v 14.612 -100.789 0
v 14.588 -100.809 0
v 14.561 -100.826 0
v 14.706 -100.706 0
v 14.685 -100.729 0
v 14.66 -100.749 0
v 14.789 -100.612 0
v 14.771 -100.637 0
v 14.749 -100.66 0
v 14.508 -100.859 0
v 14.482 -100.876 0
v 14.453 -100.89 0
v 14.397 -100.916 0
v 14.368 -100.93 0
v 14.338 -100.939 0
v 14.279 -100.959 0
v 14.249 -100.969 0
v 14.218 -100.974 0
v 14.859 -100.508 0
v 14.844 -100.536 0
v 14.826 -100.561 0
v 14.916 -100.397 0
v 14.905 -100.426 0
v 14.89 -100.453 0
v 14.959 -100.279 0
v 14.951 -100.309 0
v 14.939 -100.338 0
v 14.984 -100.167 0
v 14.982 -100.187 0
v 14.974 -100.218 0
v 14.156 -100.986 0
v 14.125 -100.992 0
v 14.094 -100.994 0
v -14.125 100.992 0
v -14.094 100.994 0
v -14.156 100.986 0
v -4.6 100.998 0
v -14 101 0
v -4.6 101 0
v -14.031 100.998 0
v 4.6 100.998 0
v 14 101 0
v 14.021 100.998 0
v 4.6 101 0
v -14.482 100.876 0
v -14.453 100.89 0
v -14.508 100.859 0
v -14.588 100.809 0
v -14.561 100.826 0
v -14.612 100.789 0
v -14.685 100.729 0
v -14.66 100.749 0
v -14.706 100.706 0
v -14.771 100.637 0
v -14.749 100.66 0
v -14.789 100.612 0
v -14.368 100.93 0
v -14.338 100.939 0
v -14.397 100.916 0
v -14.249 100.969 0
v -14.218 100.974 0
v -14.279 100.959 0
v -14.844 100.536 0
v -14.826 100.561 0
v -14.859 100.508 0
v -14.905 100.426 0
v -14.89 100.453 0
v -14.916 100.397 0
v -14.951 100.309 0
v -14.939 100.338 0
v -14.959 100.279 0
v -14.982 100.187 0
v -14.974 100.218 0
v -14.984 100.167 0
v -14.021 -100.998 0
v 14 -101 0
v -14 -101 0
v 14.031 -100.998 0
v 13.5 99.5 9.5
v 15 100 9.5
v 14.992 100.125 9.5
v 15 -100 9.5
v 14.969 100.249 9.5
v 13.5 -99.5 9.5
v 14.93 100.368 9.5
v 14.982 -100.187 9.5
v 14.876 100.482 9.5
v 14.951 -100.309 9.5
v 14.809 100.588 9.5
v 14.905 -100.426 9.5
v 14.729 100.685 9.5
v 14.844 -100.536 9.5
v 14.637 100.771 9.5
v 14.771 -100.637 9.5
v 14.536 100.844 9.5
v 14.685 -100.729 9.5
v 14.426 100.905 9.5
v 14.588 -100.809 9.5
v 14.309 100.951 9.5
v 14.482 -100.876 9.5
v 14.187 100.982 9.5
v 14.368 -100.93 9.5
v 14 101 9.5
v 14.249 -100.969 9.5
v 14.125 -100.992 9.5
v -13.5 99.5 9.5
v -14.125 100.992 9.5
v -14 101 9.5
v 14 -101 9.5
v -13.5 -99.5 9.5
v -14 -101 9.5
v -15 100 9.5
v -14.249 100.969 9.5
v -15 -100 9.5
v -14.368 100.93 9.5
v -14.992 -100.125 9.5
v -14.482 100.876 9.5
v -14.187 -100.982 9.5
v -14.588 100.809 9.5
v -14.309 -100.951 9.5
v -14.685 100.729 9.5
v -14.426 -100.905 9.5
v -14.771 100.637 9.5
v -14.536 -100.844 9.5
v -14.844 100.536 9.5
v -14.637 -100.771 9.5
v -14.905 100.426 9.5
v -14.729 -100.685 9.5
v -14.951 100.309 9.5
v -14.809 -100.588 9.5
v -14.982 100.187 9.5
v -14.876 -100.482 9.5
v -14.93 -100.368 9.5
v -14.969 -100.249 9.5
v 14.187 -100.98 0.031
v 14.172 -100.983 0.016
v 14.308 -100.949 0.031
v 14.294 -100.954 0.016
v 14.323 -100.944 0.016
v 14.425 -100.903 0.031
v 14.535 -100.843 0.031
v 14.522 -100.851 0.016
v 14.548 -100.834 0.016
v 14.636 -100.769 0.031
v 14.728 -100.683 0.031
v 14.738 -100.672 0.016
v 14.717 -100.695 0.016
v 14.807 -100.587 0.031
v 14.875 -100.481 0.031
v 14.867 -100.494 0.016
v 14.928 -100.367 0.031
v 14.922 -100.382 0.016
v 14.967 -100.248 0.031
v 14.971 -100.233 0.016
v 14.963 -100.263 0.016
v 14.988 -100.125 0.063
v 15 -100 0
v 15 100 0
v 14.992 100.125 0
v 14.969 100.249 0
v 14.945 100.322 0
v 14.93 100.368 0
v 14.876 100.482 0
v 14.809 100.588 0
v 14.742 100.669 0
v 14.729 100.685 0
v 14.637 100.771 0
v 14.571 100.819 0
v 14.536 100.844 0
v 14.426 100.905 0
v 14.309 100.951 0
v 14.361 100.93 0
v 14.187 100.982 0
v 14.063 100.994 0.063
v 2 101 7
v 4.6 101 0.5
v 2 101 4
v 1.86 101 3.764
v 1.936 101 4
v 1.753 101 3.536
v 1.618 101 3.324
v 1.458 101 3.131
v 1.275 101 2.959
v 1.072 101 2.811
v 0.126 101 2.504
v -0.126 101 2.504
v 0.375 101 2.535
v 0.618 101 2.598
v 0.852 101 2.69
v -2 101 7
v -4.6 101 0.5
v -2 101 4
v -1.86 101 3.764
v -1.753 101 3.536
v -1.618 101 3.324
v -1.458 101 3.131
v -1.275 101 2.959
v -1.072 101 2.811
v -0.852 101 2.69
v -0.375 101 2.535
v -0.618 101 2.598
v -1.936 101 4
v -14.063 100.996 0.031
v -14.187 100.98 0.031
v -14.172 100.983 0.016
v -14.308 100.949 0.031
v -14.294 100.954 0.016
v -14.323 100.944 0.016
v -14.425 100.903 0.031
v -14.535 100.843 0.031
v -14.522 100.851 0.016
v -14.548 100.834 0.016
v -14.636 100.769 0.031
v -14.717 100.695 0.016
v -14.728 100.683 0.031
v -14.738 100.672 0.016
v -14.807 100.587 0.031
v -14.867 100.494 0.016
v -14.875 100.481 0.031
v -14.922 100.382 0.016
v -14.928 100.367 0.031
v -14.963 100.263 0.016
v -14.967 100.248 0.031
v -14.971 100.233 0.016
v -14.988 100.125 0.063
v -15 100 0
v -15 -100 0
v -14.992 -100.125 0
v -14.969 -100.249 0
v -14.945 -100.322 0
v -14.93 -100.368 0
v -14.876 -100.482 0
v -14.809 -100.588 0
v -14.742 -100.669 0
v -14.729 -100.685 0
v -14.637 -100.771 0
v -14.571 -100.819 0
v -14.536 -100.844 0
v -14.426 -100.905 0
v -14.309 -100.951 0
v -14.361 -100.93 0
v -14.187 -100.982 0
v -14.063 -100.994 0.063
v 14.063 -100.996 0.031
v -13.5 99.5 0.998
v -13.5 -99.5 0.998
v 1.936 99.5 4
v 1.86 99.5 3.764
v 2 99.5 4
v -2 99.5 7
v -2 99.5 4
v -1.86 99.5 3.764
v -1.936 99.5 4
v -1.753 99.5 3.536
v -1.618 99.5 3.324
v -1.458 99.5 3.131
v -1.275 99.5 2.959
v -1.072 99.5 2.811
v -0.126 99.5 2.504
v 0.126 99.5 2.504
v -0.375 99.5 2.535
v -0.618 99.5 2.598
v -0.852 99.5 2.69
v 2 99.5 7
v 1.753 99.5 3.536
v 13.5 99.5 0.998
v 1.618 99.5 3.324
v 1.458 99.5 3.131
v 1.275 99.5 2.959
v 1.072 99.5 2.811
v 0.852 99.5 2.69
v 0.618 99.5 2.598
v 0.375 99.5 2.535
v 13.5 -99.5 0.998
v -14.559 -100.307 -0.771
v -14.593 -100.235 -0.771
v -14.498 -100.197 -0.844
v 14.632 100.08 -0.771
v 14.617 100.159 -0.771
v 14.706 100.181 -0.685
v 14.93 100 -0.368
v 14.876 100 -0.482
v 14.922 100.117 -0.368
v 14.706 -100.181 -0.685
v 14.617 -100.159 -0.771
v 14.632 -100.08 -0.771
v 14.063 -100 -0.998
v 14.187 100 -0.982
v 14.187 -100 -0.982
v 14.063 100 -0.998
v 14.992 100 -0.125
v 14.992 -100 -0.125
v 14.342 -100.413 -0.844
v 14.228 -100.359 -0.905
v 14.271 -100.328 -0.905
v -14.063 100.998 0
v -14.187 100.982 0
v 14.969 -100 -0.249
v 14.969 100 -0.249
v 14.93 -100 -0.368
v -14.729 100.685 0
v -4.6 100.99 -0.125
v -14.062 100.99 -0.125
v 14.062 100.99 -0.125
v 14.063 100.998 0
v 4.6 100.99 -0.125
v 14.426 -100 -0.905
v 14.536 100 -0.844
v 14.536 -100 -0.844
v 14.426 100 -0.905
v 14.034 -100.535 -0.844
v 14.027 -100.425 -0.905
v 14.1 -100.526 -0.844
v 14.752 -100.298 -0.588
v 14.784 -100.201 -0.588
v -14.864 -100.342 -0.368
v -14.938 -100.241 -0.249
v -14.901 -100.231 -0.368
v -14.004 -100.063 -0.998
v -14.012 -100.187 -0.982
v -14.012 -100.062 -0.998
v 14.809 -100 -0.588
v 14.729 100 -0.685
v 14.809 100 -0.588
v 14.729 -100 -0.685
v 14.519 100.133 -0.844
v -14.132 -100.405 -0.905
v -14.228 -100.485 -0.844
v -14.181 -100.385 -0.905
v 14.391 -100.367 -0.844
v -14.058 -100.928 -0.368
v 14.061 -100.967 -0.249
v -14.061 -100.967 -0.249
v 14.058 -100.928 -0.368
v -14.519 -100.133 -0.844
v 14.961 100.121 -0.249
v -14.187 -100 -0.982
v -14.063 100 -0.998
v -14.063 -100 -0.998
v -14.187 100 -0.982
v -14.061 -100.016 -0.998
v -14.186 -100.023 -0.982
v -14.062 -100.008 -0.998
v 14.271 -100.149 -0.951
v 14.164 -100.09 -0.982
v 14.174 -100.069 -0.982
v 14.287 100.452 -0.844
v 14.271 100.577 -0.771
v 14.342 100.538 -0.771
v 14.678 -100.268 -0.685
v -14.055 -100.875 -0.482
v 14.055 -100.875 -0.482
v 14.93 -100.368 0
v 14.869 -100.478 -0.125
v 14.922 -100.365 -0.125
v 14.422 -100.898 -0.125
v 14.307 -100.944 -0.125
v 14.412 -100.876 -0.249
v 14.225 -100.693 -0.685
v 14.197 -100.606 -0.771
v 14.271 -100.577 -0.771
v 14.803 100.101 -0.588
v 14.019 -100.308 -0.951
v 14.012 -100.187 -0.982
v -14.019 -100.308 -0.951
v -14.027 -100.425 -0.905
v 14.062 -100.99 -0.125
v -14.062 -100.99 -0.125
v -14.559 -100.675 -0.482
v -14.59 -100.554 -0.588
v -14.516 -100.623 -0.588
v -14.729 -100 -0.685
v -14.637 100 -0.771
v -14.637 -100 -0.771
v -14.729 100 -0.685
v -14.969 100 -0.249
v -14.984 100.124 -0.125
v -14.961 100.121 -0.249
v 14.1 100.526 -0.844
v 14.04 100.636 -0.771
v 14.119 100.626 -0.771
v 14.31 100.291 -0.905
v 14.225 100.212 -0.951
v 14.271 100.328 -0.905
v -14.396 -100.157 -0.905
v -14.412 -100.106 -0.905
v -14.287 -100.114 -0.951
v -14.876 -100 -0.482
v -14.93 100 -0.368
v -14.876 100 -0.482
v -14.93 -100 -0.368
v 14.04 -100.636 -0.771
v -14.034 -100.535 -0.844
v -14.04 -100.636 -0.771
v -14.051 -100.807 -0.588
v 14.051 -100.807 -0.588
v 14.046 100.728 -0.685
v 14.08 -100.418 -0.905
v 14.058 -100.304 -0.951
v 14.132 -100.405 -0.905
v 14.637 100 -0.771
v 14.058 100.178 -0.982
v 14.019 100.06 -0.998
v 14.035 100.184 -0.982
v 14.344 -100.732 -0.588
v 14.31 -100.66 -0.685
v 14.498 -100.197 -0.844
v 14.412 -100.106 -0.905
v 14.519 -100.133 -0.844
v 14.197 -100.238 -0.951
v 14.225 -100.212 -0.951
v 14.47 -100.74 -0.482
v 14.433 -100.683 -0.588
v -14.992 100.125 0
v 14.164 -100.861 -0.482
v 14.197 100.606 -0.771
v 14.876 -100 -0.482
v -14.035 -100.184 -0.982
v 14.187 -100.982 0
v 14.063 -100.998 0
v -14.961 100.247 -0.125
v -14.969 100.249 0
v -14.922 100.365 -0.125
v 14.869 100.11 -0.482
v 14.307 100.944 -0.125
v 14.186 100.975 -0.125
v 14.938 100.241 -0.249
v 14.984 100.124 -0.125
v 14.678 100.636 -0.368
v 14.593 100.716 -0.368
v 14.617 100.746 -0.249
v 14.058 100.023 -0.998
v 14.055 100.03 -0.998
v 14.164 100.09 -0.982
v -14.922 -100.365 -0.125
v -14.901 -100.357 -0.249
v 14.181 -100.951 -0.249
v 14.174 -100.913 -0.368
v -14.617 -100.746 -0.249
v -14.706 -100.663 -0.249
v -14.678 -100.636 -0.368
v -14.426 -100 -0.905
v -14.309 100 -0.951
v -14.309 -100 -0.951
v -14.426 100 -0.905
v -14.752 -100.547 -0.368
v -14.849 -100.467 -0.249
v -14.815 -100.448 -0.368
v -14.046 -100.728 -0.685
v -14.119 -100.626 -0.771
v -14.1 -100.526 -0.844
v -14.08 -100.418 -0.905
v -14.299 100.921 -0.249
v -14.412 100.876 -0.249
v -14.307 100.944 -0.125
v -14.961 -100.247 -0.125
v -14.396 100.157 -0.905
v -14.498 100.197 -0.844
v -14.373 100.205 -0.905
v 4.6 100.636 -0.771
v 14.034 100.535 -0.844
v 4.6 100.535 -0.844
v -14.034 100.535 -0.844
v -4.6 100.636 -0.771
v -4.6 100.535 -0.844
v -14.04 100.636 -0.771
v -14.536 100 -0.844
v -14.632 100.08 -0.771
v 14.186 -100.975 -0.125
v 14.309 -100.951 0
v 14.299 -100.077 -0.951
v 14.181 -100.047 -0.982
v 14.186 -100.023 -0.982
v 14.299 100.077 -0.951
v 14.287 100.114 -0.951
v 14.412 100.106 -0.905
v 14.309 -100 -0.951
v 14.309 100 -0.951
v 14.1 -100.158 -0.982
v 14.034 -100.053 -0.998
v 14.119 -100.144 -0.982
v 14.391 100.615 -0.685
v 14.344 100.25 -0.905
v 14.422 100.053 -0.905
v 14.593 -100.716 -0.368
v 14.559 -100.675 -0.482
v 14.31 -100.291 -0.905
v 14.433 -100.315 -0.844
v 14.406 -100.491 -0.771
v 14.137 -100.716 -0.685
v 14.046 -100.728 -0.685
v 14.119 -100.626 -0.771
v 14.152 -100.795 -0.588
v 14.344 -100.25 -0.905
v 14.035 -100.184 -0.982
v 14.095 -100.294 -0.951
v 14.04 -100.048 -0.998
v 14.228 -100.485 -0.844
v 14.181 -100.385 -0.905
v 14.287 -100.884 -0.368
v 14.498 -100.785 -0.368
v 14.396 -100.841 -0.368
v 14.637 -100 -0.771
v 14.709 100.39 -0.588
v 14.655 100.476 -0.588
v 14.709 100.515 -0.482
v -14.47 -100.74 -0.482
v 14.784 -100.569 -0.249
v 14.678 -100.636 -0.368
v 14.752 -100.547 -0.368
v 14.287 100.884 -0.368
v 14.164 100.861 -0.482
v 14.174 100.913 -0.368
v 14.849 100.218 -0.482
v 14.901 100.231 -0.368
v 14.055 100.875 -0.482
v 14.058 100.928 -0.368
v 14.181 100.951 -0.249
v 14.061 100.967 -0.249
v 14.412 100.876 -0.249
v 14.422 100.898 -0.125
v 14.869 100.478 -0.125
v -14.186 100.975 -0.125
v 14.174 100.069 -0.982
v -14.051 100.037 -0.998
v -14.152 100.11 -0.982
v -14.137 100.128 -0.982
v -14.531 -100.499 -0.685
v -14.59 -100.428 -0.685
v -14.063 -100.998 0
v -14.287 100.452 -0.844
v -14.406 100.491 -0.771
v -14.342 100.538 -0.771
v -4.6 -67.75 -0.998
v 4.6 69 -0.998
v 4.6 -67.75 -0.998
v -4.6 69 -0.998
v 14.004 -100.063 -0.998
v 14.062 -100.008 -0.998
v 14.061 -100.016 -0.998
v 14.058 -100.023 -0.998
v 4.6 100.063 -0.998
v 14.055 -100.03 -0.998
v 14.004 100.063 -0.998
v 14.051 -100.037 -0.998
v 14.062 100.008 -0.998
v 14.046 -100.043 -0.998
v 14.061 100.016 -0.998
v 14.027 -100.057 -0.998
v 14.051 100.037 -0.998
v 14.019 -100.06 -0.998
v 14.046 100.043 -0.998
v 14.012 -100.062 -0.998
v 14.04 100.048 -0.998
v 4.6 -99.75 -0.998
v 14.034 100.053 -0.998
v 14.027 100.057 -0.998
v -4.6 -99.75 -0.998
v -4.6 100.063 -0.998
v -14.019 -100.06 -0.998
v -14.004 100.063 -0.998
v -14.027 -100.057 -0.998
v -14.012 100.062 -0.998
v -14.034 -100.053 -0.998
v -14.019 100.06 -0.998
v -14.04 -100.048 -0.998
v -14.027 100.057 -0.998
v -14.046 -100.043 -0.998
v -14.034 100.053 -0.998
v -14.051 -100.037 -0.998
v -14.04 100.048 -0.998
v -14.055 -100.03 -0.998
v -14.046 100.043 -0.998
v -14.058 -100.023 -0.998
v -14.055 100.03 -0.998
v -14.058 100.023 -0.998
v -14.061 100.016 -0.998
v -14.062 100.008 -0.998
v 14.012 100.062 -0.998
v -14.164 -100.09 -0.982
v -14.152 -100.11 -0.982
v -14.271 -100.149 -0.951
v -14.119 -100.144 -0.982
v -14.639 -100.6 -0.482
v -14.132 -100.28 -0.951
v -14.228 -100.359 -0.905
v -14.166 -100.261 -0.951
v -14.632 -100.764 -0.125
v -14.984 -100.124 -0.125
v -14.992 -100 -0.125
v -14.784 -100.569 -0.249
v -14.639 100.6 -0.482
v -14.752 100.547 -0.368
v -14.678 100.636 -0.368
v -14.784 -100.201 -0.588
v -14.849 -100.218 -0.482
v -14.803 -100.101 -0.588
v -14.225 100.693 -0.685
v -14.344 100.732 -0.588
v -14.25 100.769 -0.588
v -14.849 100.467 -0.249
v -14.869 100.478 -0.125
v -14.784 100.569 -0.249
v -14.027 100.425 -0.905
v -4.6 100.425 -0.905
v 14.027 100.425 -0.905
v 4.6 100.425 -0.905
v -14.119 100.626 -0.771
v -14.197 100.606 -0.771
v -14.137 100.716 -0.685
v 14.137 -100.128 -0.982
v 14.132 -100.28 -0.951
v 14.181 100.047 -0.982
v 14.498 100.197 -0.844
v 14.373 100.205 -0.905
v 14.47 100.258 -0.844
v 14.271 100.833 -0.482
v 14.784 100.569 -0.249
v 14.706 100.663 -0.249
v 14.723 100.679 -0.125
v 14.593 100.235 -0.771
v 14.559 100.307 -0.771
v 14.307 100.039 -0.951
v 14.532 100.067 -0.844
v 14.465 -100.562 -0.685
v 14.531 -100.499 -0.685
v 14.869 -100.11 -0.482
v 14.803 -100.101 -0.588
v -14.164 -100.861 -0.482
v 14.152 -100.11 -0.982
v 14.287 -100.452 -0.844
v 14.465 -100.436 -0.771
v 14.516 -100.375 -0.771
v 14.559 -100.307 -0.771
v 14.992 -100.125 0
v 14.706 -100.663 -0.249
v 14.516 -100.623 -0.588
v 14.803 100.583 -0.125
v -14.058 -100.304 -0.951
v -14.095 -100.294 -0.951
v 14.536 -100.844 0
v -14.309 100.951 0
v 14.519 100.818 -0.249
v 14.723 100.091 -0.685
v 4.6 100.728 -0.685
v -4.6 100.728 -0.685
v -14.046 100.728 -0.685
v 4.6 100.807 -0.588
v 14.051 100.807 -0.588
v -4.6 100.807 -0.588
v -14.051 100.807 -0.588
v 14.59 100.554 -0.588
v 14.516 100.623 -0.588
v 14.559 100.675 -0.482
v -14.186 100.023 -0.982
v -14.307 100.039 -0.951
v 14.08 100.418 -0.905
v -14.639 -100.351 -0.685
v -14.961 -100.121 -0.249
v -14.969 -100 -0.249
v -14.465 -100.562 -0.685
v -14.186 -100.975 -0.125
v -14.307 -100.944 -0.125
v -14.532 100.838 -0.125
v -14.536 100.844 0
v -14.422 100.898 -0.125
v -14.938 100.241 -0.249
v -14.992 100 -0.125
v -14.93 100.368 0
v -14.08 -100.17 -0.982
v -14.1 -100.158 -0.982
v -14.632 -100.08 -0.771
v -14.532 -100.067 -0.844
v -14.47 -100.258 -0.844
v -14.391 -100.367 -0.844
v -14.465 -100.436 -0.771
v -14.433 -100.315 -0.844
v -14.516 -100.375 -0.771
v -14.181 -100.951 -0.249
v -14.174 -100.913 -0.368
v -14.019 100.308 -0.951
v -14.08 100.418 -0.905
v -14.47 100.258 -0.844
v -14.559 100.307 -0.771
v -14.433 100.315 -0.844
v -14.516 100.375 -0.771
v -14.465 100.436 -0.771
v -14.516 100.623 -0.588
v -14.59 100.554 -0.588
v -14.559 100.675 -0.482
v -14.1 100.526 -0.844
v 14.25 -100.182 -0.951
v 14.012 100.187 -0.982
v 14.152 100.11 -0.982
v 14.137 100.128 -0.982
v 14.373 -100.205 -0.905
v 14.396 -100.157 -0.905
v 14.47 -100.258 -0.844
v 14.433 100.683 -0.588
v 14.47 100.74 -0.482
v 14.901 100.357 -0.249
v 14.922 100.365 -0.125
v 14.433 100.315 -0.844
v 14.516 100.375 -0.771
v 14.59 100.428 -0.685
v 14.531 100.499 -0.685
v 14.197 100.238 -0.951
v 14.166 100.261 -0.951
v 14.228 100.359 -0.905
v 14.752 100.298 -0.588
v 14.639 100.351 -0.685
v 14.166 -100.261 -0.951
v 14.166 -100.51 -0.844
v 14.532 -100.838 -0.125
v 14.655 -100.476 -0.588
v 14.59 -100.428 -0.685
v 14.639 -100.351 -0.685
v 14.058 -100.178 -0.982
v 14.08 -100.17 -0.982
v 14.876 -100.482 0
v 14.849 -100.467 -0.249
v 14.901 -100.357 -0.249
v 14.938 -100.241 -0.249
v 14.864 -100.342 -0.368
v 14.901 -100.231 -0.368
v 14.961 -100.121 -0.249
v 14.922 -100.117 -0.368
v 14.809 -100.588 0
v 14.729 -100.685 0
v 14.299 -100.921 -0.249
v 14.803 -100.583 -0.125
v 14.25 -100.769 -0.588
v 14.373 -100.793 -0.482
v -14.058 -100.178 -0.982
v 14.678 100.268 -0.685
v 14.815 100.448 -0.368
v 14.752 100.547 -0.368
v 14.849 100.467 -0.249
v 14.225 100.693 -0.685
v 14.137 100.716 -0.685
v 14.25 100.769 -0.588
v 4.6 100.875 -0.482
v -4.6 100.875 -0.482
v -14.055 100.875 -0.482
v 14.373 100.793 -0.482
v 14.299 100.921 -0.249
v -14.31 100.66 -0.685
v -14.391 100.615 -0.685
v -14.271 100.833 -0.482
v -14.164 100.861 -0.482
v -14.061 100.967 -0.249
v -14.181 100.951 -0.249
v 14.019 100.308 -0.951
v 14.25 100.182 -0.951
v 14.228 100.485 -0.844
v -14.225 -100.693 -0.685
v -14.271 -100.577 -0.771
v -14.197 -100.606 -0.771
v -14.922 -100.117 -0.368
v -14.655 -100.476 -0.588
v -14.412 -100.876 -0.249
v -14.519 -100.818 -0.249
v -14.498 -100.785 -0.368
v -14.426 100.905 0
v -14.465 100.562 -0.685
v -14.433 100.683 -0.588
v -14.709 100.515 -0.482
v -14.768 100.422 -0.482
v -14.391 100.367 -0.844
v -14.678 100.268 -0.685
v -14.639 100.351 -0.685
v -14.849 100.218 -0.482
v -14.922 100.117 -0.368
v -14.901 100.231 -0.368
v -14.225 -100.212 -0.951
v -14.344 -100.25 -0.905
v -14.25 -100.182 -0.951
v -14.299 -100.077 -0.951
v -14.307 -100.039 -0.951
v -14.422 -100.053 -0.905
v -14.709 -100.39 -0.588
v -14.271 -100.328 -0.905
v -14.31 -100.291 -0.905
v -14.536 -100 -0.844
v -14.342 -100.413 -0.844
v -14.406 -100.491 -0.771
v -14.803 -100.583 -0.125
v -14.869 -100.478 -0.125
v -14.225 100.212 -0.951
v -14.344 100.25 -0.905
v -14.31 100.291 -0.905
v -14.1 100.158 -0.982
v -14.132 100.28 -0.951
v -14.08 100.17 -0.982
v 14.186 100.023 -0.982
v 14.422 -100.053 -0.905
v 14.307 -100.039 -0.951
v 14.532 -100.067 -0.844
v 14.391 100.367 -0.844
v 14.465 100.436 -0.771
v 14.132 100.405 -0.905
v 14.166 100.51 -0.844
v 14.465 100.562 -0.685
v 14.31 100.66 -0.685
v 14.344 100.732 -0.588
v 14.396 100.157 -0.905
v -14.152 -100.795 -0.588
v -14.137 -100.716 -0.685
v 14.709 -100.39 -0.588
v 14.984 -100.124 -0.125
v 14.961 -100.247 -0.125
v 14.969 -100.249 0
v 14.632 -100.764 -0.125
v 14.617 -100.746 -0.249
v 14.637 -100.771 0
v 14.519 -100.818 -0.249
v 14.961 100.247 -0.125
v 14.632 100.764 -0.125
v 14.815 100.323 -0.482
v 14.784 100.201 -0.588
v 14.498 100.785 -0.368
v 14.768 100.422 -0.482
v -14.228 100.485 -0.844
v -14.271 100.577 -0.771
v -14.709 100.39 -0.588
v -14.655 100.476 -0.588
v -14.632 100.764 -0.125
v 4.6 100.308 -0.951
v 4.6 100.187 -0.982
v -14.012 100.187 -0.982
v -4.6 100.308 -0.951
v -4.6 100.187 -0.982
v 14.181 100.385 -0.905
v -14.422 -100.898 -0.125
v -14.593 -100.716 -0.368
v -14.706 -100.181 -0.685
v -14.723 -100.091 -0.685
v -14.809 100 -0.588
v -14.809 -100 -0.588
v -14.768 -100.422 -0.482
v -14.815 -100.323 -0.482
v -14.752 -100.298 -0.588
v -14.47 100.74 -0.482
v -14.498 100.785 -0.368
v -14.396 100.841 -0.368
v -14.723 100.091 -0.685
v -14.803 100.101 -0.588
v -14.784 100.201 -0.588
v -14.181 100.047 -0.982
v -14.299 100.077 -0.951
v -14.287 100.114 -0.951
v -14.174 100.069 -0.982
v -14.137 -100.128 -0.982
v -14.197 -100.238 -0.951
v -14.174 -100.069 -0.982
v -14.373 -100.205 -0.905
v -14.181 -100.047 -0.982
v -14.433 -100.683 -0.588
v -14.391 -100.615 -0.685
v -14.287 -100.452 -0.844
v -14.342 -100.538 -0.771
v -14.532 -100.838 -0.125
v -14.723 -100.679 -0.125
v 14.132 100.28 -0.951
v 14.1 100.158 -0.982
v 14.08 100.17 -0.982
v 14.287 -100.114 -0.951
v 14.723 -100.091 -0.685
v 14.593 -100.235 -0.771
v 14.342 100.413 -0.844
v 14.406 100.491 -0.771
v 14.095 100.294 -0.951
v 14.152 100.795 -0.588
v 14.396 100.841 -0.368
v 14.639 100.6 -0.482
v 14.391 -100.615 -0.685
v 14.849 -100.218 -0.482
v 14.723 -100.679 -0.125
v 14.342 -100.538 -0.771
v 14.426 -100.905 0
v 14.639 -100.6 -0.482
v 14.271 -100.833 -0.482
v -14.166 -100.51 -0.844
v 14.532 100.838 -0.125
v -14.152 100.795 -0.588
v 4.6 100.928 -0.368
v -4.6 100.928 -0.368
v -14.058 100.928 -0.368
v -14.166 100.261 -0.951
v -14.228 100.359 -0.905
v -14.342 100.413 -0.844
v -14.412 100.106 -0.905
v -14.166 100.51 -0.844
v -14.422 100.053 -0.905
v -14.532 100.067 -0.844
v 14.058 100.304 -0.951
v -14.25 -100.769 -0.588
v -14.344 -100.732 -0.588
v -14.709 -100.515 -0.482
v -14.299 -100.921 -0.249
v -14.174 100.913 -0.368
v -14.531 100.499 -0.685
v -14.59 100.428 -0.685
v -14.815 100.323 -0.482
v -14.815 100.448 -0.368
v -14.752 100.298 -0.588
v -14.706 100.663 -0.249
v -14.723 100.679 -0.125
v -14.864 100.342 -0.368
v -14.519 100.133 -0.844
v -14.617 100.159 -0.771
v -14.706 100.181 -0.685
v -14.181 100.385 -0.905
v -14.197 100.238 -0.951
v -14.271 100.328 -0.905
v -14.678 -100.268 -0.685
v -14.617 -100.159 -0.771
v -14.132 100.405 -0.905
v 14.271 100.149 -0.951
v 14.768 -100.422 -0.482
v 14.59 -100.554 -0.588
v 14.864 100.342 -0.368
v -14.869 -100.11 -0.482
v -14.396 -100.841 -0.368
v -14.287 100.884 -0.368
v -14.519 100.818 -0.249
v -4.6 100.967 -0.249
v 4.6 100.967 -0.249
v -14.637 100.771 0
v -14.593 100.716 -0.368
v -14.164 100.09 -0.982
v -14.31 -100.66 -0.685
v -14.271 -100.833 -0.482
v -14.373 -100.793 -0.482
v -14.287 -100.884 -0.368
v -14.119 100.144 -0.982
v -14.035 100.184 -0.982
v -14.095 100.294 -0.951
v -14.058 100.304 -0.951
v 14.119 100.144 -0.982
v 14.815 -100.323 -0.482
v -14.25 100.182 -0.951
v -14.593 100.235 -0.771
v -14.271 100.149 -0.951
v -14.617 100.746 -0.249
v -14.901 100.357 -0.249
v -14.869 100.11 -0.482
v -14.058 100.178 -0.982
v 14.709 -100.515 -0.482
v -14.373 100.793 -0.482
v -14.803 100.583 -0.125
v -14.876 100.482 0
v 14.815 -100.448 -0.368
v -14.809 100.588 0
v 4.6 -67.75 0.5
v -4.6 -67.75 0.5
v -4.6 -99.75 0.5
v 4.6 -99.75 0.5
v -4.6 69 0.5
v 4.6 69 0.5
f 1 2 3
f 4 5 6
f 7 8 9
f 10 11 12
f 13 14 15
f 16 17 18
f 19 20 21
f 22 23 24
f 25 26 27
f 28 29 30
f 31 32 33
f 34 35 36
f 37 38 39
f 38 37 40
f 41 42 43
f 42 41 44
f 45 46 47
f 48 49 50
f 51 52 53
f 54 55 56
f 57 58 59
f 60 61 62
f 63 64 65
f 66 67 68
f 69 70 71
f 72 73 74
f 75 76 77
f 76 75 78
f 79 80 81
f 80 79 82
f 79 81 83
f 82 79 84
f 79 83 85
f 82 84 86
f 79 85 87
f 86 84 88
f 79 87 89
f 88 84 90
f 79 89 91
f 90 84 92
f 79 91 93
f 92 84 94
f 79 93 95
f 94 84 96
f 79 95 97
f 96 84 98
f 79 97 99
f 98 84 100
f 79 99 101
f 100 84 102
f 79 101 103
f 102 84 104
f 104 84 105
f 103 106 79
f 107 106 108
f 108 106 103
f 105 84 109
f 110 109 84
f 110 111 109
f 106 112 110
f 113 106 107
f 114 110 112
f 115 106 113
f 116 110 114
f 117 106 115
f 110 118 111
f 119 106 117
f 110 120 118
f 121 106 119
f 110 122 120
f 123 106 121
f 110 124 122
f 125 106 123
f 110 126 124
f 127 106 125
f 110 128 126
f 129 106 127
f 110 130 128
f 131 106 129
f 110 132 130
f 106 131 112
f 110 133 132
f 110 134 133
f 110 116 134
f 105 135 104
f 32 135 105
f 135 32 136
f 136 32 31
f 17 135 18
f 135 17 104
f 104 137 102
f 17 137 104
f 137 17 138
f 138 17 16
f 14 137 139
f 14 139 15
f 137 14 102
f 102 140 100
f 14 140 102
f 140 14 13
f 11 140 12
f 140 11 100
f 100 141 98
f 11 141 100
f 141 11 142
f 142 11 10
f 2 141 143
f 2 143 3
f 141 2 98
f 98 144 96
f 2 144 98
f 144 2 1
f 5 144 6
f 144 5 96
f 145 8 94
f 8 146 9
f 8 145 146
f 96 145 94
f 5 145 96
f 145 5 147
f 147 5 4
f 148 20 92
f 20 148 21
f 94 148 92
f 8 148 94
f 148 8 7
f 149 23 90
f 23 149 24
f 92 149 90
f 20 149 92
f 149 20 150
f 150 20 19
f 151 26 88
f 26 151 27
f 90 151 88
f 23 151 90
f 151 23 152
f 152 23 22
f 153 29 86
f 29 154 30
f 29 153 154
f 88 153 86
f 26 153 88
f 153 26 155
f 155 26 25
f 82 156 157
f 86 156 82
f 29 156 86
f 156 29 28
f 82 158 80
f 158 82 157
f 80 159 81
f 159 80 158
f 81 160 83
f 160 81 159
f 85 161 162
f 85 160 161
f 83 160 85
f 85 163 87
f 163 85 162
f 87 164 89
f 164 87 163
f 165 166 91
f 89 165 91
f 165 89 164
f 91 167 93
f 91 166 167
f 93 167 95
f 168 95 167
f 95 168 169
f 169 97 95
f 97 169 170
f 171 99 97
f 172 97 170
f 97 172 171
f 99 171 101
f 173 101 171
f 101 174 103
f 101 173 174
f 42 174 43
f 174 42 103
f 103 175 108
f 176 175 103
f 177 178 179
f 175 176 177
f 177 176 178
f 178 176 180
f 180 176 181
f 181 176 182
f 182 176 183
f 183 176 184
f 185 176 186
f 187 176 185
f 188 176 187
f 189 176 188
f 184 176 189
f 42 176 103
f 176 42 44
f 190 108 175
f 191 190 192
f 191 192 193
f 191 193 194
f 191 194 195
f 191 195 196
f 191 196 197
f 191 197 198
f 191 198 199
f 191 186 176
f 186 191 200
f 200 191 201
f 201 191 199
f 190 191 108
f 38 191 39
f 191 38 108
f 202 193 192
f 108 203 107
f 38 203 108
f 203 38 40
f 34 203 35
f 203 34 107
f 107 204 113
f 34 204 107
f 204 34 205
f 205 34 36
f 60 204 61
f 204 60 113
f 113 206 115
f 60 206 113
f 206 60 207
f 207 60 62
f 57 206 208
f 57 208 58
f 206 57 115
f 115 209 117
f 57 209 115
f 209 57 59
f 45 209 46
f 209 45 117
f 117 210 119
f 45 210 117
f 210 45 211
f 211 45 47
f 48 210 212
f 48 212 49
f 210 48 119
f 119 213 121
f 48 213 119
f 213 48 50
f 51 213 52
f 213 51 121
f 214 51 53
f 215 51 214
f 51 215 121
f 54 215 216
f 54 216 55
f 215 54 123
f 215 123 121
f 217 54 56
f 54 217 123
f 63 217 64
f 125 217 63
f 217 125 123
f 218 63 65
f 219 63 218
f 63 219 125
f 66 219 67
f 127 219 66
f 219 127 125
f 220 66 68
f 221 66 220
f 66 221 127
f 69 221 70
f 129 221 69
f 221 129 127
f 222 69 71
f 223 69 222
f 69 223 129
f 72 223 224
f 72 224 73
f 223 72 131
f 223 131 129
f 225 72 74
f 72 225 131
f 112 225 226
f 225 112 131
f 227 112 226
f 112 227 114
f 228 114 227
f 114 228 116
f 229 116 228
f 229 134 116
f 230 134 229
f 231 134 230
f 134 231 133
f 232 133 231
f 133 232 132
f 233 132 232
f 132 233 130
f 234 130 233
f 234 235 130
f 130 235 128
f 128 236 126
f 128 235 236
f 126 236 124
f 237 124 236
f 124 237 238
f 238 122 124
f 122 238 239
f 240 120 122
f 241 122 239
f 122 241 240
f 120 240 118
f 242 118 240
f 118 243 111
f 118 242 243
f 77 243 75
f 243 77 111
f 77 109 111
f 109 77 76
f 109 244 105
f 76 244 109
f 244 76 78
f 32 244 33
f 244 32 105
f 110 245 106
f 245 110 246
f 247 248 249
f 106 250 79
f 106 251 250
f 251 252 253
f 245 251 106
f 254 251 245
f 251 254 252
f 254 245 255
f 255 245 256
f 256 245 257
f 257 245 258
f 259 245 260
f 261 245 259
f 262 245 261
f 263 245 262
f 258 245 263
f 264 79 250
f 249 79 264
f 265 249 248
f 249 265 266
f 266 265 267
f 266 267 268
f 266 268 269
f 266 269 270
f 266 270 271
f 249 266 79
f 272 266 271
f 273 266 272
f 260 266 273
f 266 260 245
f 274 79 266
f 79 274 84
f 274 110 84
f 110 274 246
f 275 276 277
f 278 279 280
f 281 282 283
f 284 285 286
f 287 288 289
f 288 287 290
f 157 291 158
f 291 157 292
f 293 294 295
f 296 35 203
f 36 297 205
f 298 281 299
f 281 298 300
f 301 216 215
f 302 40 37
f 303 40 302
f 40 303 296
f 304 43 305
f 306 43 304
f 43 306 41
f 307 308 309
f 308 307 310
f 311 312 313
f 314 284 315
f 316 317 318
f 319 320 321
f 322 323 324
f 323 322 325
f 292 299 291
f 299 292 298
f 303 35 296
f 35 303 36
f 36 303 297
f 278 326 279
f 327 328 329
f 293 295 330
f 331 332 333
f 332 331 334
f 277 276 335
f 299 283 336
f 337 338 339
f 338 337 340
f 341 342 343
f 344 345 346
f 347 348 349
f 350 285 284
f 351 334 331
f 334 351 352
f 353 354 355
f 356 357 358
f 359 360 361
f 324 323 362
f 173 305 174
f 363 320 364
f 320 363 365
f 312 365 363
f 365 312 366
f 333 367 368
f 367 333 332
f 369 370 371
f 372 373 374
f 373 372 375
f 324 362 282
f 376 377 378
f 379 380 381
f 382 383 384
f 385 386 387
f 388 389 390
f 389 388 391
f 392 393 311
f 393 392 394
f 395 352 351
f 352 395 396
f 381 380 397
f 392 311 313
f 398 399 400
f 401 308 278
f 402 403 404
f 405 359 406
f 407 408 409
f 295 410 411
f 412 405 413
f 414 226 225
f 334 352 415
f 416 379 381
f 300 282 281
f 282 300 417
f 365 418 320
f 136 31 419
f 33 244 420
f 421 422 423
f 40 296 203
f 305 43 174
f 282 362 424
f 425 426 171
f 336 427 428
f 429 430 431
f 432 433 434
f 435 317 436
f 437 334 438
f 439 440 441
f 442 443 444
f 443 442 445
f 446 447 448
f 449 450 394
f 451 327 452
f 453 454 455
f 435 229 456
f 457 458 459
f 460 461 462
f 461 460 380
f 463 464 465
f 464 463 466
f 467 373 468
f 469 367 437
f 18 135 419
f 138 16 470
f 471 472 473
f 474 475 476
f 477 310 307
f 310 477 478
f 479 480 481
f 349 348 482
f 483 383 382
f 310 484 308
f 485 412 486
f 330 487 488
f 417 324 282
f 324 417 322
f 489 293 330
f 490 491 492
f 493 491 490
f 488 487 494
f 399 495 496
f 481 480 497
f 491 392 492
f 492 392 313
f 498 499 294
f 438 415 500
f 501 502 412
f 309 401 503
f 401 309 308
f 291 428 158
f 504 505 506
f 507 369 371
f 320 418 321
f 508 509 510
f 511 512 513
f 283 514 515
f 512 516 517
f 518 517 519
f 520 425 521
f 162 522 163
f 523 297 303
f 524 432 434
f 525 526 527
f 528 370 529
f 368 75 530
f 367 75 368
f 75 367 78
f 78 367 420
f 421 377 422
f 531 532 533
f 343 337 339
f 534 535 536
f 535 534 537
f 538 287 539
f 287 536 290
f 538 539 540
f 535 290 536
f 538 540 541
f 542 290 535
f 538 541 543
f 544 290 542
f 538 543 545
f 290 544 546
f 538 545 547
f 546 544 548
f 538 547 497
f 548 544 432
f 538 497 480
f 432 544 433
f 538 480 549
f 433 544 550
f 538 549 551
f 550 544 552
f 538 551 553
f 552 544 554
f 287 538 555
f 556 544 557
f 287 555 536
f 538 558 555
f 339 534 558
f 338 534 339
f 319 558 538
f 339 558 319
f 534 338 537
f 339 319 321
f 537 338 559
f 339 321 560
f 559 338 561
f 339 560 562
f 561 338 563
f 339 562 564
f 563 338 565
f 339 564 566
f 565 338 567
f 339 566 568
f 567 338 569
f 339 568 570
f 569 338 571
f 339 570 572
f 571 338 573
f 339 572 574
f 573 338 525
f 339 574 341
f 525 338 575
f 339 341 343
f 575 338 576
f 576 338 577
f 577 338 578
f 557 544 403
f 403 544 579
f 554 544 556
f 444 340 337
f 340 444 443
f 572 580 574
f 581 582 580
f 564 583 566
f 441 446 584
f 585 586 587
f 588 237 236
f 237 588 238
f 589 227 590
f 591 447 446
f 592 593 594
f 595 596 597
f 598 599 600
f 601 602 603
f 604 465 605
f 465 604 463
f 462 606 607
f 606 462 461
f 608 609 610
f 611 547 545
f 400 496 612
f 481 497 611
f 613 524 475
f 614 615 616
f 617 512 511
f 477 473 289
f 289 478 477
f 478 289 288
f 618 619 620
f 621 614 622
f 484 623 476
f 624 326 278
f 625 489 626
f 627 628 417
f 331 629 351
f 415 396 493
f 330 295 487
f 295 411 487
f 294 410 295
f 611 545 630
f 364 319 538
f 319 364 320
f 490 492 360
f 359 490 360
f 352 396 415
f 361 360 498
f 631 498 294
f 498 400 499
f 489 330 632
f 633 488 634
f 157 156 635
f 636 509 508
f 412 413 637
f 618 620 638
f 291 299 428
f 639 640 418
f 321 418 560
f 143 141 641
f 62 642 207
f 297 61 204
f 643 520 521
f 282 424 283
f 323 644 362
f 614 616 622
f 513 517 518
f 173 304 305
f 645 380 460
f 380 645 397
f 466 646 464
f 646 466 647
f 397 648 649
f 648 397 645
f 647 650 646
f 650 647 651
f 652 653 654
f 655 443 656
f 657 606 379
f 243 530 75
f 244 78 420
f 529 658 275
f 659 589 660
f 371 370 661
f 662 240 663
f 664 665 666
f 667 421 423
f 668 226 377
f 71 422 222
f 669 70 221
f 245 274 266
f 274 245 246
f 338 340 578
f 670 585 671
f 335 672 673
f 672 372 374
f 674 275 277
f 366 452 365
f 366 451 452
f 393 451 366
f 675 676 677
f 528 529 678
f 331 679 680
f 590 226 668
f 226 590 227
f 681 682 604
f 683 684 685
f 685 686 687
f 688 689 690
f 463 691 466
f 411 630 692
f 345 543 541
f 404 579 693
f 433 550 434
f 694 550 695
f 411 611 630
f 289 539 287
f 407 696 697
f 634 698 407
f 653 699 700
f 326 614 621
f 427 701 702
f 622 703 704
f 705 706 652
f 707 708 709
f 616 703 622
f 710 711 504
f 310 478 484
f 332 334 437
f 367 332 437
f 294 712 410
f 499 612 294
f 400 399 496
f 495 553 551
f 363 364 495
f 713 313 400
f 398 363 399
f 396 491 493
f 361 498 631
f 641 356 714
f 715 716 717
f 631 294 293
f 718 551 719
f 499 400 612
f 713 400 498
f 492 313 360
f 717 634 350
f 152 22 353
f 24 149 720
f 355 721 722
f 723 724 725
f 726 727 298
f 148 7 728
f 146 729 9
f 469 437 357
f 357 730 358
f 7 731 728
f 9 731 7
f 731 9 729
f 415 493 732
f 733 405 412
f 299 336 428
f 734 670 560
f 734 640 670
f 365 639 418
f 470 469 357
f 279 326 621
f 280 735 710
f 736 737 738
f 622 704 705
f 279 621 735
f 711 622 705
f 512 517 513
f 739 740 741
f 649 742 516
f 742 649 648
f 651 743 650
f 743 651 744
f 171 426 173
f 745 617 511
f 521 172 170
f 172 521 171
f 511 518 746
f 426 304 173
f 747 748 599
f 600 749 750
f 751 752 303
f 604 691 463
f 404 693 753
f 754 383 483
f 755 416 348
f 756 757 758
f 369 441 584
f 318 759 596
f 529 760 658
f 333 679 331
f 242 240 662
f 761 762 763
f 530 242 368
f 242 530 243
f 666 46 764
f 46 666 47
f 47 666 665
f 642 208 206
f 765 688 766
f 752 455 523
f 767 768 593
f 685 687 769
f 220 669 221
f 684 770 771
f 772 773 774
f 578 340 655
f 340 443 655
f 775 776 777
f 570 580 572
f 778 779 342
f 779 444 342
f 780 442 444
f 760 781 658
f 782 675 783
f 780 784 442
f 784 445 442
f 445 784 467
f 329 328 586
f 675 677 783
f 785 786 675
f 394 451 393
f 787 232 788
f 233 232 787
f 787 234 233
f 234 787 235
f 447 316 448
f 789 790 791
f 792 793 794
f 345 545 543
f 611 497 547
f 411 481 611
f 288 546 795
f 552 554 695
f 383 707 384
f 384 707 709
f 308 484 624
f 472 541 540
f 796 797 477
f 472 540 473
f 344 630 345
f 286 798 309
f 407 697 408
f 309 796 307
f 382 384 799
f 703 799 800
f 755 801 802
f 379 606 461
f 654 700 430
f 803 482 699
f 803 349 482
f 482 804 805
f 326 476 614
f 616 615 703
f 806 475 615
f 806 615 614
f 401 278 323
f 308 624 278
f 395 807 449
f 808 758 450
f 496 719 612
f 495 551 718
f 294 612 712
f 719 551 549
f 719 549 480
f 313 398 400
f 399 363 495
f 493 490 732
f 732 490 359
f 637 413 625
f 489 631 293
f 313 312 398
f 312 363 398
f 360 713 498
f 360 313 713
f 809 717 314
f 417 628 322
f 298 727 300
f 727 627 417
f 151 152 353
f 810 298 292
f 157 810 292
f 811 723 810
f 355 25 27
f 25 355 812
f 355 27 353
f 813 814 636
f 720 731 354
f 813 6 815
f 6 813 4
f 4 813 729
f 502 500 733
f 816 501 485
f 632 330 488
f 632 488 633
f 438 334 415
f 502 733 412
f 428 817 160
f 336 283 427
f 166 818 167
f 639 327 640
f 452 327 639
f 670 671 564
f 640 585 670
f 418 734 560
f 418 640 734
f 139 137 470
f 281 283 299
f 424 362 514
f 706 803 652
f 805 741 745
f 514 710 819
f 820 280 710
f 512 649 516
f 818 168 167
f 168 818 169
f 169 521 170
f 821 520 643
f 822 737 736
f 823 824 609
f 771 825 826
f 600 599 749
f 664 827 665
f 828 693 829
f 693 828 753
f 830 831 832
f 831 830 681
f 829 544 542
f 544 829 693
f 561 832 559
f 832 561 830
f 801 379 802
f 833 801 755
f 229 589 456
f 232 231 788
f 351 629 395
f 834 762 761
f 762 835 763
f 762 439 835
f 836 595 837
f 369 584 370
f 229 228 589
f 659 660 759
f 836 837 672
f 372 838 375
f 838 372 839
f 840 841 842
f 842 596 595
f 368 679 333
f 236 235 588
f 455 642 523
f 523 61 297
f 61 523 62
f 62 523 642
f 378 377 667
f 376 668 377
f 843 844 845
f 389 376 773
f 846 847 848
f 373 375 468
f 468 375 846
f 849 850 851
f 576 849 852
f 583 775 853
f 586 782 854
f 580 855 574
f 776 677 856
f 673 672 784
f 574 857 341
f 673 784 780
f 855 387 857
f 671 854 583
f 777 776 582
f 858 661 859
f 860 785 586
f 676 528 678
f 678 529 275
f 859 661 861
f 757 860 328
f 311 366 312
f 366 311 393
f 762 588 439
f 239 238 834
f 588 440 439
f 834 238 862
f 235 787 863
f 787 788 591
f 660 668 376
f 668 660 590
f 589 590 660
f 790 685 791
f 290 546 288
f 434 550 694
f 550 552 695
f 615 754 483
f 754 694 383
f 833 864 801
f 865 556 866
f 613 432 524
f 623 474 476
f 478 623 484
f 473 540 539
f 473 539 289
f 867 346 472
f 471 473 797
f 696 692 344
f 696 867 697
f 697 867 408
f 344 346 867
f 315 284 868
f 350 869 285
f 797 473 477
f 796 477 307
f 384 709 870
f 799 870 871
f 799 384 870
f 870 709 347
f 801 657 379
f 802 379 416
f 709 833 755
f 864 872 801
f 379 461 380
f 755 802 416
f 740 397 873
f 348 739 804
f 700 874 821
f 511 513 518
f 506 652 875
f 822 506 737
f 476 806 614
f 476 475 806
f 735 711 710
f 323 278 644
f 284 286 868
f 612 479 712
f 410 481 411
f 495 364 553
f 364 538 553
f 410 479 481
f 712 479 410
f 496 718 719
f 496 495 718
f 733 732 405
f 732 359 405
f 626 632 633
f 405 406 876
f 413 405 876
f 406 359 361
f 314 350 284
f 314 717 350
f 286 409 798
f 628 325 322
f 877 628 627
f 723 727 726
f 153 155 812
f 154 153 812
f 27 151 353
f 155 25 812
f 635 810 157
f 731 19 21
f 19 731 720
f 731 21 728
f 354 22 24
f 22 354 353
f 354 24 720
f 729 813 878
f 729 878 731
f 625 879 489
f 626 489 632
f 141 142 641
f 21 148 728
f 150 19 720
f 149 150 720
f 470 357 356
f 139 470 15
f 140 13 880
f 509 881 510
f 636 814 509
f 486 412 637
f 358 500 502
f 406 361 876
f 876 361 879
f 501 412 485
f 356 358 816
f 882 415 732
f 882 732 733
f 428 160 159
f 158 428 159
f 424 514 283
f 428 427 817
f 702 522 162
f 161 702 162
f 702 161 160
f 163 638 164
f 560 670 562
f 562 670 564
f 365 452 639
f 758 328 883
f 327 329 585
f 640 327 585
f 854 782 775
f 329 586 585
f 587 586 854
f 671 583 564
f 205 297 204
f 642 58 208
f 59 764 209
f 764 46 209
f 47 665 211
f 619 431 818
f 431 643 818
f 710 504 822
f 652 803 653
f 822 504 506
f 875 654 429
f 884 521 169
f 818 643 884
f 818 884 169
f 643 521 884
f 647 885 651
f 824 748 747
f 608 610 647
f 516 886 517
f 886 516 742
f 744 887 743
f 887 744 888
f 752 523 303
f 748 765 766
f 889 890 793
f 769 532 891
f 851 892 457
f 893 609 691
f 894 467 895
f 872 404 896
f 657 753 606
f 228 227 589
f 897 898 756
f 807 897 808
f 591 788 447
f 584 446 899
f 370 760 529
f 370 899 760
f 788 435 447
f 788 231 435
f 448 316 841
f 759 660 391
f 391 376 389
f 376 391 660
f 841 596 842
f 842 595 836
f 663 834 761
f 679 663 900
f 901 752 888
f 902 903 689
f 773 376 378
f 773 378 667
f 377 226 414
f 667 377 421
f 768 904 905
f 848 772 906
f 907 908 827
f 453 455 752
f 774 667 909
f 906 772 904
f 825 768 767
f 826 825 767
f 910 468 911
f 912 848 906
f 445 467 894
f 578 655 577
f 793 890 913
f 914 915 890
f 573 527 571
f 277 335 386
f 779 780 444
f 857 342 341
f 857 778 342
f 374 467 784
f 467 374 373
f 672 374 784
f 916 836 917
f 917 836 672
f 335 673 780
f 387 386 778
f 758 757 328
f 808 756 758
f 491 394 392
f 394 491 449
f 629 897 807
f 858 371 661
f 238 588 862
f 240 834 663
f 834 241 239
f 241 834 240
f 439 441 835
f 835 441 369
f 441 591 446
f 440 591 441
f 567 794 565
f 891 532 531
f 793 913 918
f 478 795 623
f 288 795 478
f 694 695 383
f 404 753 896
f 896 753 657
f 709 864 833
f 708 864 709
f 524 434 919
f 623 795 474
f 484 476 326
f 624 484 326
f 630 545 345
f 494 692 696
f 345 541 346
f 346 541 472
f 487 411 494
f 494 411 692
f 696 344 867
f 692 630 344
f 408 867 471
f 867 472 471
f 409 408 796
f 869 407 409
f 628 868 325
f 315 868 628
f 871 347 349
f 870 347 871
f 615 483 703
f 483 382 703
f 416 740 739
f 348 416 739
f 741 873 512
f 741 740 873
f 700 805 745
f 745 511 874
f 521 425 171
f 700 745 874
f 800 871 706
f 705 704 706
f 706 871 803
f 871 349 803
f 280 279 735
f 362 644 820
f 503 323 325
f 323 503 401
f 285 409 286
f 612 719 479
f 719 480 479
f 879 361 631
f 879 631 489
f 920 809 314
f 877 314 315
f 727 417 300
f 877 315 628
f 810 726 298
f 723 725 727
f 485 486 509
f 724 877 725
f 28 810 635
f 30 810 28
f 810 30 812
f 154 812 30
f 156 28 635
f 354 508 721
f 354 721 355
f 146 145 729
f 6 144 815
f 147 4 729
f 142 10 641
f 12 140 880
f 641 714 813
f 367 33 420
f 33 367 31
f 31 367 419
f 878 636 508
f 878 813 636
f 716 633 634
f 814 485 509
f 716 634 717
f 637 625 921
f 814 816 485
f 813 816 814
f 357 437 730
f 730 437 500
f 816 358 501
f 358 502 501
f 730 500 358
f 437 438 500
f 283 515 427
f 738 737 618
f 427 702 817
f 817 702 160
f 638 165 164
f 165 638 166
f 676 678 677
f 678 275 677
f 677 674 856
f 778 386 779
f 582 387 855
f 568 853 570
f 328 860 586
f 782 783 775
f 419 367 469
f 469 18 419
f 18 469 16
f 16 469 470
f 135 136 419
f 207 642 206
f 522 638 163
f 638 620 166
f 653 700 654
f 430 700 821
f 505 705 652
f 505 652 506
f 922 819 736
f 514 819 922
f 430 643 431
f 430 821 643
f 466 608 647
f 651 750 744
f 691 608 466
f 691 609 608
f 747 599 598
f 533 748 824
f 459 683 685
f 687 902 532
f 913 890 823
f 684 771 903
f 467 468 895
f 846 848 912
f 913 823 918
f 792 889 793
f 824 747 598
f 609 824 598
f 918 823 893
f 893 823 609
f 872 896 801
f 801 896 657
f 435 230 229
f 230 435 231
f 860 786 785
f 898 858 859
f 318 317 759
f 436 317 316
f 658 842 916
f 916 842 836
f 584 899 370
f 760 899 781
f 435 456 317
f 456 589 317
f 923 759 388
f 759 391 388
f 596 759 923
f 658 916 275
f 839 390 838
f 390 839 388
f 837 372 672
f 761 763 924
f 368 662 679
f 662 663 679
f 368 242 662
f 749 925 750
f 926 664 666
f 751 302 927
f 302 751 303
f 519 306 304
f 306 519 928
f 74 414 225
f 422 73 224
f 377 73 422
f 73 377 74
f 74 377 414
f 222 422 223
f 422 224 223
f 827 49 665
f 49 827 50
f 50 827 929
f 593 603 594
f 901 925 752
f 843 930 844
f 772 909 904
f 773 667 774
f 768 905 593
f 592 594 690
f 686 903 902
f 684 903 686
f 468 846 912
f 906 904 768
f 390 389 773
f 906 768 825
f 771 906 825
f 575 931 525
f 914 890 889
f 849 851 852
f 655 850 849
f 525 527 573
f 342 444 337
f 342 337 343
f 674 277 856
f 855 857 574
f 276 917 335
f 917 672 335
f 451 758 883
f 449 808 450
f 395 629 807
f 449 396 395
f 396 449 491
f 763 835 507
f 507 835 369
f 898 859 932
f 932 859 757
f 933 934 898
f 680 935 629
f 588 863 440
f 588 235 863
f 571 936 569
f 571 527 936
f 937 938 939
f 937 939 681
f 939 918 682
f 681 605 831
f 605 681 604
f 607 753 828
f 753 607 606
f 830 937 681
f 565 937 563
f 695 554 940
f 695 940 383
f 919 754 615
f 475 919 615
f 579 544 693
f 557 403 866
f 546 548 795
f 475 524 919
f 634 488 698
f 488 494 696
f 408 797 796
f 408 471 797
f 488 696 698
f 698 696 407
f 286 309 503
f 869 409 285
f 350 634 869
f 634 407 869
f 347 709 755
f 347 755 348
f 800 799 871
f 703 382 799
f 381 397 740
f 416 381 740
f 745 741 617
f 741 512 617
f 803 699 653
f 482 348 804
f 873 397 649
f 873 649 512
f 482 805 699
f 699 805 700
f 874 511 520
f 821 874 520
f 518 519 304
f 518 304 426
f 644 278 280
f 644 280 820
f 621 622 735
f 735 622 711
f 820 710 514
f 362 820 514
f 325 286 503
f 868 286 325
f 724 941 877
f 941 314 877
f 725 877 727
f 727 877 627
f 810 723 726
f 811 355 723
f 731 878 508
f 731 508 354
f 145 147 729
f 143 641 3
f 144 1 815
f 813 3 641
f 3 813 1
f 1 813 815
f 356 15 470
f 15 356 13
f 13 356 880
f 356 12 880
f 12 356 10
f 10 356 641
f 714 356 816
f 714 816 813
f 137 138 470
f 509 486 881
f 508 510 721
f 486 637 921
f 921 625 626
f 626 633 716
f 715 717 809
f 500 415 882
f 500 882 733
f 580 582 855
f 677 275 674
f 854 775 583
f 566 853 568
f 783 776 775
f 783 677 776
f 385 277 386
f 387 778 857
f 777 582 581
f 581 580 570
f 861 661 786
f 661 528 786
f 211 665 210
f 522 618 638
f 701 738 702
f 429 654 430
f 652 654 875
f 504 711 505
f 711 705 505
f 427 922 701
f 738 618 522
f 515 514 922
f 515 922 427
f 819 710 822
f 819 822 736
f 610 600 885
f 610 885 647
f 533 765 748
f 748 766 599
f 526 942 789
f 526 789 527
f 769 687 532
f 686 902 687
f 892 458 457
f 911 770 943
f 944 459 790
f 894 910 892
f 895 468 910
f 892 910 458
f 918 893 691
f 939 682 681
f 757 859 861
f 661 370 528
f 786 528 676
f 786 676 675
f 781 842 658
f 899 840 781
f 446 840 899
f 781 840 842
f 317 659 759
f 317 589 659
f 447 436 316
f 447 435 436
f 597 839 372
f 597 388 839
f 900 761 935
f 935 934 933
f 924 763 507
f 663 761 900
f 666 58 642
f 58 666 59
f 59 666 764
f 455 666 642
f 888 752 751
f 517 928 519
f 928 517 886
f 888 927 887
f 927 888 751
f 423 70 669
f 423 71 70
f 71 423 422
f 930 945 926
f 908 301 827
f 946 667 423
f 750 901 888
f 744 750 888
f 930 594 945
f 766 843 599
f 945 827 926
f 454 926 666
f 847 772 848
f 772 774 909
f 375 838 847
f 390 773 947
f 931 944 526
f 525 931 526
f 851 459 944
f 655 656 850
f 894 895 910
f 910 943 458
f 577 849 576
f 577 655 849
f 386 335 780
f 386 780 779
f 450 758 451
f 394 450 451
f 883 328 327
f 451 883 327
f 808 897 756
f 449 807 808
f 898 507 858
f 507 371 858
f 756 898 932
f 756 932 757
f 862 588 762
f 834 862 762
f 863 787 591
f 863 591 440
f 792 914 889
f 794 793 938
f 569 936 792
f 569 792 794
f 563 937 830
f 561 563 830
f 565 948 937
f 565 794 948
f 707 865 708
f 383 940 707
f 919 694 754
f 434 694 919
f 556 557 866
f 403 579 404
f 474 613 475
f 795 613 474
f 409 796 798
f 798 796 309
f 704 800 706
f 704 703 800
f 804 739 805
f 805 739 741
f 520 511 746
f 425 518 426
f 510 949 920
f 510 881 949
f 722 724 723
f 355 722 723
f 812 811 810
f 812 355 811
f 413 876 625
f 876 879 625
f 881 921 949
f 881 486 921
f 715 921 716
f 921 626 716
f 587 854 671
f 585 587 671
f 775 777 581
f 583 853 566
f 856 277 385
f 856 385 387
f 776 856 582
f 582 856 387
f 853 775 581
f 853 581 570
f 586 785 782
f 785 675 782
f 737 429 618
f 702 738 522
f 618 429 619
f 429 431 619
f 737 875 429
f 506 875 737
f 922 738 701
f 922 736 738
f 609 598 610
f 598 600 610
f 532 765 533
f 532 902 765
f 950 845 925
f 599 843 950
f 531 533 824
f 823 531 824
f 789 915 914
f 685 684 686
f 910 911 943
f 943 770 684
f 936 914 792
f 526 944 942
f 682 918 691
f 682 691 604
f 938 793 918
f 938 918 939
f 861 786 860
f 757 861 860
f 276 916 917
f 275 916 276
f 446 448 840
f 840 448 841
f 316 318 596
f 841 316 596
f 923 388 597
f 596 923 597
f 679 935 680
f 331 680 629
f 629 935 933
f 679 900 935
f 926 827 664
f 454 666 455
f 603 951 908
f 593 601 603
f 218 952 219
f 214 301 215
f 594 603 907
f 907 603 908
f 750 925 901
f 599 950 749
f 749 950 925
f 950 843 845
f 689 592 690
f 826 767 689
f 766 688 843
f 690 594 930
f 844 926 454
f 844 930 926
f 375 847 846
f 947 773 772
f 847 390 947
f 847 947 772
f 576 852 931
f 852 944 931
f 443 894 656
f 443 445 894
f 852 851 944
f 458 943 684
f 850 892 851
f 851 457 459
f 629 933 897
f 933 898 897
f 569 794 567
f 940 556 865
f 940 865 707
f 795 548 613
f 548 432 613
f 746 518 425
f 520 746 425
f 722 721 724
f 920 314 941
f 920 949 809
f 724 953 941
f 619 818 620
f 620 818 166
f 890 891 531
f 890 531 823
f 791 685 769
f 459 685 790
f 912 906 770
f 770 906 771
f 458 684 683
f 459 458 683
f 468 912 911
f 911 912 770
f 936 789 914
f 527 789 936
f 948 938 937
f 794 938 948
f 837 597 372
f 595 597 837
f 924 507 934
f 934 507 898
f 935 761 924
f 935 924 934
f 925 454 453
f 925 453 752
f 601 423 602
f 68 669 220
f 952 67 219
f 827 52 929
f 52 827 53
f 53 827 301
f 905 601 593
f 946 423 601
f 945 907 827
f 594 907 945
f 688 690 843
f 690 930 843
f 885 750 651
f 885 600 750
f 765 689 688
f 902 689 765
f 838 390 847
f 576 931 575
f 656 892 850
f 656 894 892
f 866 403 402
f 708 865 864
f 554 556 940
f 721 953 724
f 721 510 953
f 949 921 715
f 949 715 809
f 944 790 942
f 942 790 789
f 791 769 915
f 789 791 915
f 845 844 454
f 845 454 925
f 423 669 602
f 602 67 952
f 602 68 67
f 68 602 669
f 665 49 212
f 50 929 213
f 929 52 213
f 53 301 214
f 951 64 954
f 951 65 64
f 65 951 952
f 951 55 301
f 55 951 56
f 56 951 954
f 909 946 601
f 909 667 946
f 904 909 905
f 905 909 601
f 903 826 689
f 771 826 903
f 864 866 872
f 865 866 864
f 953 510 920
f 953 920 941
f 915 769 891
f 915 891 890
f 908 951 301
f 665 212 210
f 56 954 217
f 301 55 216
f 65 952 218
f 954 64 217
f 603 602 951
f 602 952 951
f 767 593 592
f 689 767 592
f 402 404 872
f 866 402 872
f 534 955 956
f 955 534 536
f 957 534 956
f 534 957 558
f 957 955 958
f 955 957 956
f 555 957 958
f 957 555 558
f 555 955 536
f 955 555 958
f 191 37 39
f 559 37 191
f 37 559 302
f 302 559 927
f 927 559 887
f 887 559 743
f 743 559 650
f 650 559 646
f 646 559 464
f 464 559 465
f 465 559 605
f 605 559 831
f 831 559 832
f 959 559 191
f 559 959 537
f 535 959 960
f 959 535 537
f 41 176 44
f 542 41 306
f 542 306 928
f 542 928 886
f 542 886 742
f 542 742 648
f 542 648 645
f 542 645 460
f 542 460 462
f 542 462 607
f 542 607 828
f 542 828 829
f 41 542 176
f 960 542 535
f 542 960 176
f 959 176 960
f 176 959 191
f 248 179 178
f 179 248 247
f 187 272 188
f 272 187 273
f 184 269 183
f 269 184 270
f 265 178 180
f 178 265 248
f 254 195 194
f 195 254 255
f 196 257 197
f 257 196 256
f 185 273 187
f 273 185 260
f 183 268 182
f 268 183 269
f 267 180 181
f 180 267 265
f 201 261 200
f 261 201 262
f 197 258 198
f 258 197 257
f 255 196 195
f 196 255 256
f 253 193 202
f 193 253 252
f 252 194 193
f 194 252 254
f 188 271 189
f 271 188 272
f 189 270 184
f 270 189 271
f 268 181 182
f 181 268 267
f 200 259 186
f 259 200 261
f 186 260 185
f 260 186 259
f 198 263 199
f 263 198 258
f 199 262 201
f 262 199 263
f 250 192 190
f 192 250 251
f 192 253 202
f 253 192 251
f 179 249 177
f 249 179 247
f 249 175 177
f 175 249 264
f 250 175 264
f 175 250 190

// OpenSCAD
$fn=50;
BOX_W = 28; // Box Width
BOX_L = 200;// Box Length
BOX_H = 9.5; // Box Height (adjusted to have 4mm base thickness)
CORNER_RADIUS = 1.0; // Radius of corners
WALL = 1;// Wall Thickness

//KEEL_OUTSIDE_WIDTH=9.1;
KEEL_WIDTH=9.2;
KEEL_DEPTH=2;
KEEL_LENGTH=32;

CON_OUTSIDE=6;
CON_INSIDE=4;
CON_LENGTH=3;

difference() {
  union() {
  linear_extrude( BOX_H )
    difference(){
      offset(r=CORNER_RADIUS) square( [BOX_W, BOX_L], center=true );
      offset(r= CORNER_RADIUS - WALL) square([BOX_W-WALL, BOX_L-WALL], center=true );
    };

    coordinates = [ [0,0],[0,BOX_L],[BOX_W,BOX_L],[BOX_W,0] ];

    translate ( [-BOX_W/2, -BOX_L/2] )
      hull()
      for (i = coordinates)
        translate(i) sphere(CORNER_RADIUS);
  }
  // opposite audio connector side
  translate([0,-67.75,BOX_H-10])
  rotate([90,0,0])
  #linear_extrude(KEEL_LENGTH) square([KEEL_WIDTH, KEEL_DEPTH], center=true);  
  
  // audio connector side
  translate([0,101,BOX_H-10])
  rotate([90,0,0])
  #linear_extrude(KEEL_LENGTH) square([KEEL_WIDTH, KEEL_DEPTH], center=true);  
  
  translate([0,102.0,BOX_H-5])
  rotate([90,0,0])
  cylinder(h=CON_LENGTH,r=CON_INSIDE/2);
  
  translate([0,102.0,BOX_H-4])
  rotate([90,0,0])
  //cylinder(h=CON_LENGTH+1,r=CON_INSIDE/2);
  linear_extrude(3.0) square([4.0,3], center=true);
}
